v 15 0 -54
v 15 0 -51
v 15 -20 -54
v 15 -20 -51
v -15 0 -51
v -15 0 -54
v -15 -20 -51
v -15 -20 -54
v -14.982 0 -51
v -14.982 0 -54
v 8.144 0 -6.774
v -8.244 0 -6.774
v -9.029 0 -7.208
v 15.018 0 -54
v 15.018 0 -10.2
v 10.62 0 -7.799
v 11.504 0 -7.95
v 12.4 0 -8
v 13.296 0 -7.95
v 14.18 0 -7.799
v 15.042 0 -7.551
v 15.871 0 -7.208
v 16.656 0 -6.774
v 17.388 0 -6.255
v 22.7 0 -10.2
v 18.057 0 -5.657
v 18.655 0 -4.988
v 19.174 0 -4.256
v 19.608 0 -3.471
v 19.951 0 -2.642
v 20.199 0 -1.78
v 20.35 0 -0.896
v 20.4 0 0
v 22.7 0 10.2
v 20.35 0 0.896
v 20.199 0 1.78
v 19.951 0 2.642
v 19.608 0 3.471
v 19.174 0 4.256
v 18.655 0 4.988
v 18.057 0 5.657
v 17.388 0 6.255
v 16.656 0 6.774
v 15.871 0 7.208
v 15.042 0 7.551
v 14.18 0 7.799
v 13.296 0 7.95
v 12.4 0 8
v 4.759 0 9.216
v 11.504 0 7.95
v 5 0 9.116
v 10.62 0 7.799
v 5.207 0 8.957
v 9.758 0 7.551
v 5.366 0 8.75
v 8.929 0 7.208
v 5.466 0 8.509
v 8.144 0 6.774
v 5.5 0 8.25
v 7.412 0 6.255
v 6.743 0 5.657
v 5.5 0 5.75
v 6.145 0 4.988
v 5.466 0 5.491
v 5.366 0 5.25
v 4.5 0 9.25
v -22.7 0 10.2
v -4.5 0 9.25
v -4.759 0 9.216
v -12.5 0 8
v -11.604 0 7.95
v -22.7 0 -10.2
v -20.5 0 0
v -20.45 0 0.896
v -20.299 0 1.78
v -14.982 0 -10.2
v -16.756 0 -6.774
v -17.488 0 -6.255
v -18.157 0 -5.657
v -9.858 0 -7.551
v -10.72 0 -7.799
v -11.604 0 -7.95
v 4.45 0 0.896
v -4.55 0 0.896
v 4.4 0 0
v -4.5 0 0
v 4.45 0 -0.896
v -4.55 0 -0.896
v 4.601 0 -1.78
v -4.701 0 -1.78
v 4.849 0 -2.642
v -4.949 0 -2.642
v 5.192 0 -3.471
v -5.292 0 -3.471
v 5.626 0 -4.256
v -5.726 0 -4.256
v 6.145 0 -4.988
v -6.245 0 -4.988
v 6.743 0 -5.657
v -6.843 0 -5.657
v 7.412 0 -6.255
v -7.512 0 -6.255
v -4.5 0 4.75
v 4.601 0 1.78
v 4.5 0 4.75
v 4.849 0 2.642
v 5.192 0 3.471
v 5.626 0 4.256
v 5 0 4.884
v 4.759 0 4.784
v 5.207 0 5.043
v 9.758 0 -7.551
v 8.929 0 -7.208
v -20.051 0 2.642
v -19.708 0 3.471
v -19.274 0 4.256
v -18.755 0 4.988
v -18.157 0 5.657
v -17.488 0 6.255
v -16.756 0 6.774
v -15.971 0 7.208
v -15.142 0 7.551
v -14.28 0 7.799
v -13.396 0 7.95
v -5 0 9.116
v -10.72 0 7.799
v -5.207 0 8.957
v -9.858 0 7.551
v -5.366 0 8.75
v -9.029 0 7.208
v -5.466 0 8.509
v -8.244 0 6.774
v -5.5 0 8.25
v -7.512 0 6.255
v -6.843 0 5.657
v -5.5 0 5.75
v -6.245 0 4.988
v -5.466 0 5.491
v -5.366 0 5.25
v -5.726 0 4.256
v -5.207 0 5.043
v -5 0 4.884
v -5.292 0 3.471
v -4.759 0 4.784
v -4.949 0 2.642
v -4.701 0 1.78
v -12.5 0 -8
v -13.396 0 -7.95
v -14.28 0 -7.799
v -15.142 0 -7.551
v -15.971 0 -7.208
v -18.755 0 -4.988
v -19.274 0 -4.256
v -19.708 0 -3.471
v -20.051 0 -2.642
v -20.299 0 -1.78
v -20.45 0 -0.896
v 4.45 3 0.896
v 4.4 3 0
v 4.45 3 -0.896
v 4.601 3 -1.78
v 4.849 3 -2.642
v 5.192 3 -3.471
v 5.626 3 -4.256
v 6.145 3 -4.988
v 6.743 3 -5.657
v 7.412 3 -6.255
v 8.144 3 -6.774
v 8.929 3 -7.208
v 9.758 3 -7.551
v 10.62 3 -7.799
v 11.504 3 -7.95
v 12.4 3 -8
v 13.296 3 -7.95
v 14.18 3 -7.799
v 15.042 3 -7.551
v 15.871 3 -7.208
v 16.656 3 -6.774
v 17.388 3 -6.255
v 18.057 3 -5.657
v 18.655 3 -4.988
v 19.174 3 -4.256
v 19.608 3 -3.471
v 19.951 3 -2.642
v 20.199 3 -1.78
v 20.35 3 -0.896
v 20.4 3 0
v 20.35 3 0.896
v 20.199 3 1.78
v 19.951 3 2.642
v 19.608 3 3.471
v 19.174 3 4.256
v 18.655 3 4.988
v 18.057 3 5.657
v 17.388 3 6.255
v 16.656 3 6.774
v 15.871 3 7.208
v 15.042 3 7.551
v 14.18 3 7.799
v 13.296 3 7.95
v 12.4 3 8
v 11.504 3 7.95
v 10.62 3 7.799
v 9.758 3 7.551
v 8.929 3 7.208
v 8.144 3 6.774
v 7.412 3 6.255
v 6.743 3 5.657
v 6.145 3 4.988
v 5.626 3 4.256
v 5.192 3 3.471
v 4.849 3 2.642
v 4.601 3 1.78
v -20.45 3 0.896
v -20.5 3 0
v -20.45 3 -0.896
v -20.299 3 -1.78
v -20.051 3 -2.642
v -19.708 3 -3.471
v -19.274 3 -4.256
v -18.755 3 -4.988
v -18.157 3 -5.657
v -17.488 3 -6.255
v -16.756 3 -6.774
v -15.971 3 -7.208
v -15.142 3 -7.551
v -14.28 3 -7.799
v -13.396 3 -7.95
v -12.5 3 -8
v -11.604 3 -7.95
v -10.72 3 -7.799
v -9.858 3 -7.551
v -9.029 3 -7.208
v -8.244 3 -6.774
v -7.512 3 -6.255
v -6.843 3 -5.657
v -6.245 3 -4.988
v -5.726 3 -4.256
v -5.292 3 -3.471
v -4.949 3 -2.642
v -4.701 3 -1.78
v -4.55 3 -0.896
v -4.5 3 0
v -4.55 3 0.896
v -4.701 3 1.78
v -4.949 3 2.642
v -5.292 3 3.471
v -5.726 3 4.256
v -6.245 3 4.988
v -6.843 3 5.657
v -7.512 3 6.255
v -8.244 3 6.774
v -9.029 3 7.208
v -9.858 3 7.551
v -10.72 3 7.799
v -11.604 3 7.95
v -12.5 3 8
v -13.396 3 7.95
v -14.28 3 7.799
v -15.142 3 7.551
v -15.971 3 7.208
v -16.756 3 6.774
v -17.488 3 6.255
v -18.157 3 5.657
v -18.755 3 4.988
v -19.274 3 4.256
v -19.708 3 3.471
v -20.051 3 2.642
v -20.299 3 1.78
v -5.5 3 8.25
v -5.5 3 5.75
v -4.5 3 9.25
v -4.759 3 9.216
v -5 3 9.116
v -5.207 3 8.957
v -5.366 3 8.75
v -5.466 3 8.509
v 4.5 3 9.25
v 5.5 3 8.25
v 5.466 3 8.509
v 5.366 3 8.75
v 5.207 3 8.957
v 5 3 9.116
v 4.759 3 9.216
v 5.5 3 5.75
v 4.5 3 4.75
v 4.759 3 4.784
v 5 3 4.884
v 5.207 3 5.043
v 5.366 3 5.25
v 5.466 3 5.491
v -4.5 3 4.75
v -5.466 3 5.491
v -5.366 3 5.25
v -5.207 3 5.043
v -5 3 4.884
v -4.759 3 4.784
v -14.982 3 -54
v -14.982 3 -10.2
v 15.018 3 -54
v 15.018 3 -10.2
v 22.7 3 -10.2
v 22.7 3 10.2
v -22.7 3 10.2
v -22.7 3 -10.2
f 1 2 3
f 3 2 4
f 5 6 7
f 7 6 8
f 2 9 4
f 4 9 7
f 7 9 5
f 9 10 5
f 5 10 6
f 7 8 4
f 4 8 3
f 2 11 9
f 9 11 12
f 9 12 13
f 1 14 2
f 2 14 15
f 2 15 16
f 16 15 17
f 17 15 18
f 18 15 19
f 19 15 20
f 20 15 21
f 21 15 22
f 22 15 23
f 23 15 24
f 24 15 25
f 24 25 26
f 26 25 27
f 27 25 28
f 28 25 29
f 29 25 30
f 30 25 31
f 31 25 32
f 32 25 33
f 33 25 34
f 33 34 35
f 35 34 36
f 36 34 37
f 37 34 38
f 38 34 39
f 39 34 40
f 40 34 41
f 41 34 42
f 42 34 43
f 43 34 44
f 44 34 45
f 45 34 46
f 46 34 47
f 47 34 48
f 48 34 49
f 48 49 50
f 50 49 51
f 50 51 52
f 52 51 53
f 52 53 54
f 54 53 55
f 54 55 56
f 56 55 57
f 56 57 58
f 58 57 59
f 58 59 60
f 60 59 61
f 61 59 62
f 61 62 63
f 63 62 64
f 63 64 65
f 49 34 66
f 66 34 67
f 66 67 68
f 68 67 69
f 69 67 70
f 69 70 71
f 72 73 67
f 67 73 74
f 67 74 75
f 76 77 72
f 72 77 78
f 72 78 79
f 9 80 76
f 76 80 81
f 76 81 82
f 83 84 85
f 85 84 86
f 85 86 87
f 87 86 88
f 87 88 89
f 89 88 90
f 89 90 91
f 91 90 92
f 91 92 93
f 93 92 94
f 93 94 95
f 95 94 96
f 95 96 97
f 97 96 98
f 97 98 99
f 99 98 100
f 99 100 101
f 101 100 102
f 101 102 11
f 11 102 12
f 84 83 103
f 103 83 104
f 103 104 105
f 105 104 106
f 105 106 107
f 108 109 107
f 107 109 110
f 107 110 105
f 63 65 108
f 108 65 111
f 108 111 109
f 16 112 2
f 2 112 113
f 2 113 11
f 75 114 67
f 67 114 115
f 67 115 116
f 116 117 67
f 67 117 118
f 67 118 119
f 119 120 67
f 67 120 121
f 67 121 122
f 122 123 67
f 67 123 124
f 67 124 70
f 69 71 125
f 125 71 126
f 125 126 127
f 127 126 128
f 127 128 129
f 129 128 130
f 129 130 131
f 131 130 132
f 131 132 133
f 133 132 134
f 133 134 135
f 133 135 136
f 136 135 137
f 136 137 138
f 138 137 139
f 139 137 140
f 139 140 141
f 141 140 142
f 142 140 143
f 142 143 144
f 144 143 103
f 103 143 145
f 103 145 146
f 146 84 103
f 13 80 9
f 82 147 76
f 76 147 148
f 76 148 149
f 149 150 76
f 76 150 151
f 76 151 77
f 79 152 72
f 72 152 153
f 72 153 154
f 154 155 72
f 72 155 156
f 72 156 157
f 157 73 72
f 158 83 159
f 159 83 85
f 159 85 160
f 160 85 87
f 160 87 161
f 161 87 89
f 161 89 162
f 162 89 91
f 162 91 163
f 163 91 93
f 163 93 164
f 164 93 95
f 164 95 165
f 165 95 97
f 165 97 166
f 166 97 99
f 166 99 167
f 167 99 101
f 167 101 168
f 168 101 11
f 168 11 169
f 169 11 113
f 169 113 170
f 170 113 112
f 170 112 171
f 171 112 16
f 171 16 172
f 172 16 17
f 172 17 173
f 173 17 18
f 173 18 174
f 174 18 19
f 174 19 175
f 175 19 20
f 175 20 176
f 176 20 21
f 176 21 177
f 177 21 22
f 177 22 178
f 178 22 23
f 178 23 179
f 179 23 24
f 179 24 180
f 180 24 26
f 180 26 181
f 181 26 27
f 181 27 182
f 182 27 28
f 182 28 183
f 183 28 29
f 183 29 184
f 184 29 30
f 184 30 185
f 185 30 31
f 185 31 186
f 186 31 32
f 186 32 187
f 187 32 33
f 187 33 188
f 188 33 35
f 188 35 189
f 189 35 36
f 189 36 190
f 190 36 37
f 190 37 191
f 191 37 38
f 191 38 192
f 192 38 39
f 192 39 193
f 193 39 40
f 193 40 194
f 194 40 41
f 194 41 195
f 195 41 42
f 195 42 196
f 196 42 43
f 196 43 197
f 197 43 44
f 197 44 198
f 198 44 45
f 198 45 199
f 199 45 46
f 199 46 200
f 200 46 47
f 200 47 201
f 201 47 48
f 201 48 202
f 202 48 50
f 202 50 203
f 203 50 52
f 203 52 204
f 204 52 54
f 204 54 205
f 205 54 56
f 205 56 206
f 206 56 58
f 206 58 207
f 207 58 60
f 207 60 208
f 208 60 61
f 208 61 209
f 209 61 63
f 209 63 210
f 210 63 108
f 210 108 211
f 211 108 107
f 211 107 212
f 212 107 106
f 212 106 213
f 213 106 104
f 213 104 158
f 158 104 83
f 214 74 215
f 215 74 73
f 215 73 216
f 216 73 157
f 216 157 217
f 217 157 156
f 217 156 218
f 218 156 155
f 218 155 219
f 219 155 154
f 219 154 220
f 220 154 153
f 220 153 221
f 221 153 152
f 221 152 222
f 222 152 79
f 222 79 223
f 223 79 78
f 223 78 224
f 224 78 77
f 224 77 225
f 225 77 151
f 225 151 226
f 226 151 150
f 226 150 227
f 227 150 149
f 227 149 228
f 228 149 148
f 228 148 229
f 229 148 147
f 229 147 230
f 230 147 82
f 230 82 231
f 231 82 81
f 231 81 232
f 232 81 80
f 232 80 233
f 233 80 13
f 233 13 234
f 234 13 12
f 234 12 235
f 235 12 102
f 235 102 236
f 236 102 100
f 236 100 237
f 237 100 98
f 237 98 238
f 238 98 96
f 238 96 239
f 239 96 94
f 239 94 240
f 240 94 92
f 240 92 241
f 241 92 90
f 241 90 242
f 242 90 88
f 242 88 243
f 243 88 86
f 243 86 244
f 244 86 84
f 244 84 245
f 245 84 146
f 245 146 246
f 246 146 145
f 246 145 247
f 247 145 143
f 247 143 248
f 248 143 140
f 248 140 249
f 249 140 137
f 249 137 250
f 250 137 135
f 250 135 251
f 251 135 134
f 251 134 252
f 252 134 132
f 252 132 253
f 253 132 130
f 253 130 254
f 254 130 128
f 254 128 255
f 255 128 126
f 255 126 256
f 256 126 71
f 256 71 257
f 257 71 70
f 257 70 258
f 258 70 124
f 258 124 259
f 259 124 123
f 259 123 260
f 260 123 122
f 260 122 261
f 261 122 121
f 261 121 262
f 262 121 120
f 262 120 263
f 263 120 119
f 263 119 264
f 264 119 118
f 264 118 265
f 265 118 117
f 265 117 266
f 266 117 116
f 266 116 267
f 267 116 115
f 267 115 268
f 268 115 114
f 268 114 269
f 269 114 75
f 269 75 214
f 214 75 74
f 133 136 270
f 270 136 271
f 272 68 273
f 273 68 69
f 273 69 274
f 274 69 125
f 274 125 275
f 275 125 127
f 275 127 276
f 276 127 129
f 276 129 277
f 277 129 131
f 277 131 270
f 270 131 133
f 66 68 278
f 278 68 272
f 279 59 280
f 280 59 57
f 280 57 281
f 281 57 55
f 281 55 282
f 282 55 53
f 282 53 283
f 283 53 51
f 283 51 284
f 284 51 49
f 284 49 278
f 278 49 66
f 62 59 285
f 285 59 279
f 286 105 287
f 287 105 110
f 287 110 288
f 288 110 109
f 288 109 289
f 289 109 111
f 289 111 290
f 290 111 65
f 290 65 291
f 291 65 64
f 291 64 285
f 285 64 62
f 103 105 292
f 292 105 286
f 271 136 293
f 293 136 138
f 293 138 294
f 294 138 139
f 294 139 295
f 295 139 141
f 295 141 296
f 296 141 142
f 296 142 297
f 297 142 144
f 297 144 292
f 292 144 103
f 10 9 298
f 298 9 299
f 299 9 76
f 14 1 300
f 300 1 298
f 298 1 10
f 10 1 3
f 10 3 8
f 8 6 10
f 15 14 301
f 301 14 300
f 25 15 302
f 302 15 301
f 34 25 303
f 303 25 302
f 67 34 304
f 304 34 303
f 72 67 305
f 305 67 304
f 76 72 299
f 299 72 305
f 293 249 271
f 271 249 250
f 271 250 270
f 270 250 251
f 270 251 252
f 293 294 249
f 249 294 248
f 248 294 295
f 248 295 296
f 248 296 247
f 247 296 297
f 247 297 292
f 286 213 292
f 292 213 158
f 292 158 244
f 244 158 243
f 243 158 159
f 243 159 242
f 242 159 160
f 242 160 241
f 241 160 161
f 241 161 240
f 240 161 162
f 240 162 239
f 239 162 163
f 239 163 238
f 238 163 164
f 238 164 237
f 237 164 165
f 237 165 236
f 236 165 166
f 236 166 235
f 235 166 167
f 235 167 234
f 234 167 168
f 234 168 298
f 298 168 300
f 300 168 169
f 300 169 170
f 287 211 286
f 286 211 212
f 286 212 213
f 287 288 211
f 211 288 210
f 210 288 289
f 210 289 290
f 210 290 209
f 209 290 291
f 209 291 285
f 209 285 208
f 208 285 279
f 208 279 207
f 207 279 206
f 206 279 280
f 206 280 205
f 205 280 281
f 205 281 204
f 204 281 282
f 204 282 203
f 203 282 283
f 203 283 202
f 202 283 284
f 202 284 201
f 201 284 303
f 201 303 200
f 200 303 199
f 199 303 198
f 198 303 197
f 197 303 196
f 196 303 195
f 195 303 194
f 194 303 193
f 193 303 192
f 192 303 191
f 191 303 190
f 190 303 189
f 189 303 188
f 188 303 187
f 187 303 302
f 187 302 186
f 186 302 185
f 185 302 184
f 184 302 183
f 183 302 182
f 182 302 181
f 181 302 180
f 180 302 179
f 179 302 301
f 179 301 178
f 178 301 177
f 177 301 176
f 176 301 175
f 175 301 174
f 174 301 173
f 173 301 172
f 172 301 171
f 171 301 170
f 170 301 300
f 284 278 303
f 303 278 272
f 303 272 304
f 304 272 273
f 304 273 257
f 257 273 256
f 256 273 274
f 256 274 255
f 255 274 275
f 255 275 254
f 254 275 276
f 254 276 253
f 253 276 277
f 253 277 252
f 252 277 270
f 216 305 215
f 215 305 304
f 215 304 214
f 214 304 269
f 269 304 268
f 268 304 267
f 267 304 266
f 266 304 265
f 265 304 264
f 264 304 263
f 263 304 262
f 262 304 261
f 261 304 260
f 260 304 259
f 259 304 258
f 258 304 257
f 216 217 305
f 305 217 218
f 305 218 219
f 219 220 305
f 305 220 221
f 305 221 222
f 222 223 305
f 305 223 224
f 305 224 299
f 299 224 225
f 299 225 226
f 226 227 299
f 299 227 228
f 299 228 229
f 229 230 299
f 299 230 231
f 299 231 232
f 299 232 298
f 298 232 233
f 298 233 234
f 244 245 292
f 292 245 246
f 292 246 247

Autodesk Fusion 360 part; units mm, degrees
sketch "Sketch3" plane through (0, 0, 0) normal (0, 1, 0) x (1, 0, 0)
  circle A0 centre (12.4, 0) radius 8
  line L0 (-22.7, 10.2) -> (-22.7, -10.2)
  line L1 (-22.7, -10.2) -> (22.7, -10.2)
  line L2 (22.7, -10.2) -> (22.7, 10.2)
  line L3 (22.7, 10.2) -> (-22.7, -10.2) construction
  line L4 (-22.7, 10.2) -> (22.7, -10.2) construction
  circle A1 centre (-12.5, 0) radius 8
  line L5 (4.5, -4.75) -> (-4.5, -4.75)
  line L6 (-5.5, -5.75) -> (-5.5, -8.25)
  line L7 (-4.5, -9.25) -> (4.5, -9.25)
  line L8 (5.5, -8.25) -> (5.5, -5.75)
  line L9 (5.5, -4.75) -> (-5.5, -9.25) construction
  line L10 (-5.5, -4.75) -> (5.5, -9.25) construction
  arc A2 (-5.5, -8.25) -> (-4.5, -9.25) centre (-4.5, -8.25) ccw
  arc A3 (4.5, -9.25) -> (5.5, -8.25) centre (4.5, -8.25) ccw
  arc A4 (5.5, -5.75) -> (4.5, -4.75) centre (4.5, -5.75) ccw
  arc A5 (-4.5, -4.75) -> (-5.5, -5.75) centre (-4.5, -5.75) ccw
  line L11 (15.0179, 10.2) -> (15.0179, 54)
  line L12 (15.0179, 54) -> (-14.9821, 54)
  line L13 (-14.9821, 54) -> (-14.9821, 10.2)
  line L14 (22.7, 10.2) -> (15.0179, 10.2)
  line L15 (-14.9821, 10.2) -> (-22.7, 10.2)
  point P0 (0, -7)
  dimension "d8" = 16
  dimension "d10" = 45.4
  dimension "d11" = 20.4
  dimension "d12" = 16
  dimension "d13" = 11
  dimension "d14" = 4.5
  dimension "d15" = 1
  dimension "d16" = 1
  dimension "d17" = 30
  dimension "d18" = 43.8
sketch "Sketch4" plane through (0, 0, 0) normal (0, 1, 0) x (1, 0, 0)
  line L0 (-15, 54) -> (15, 54)
  line L1 (15, 54) -> (15, 51)
  line L2 (15, 51) -> (-15, 51)
  line L3 (-15, 51) -> (-15, 54)
extrude "Extrude1" add sketch "Sketch3" along normal blind 3
extrude "Extrude2" add sketch "Sketch4" against normal blind 20
sketch "Sketch1" plane through (0, 0, 0) normal (0, 1, 0) x (1, 0, 0)
sketch "Sketch2" plane through (0, 0, 0) normal (0, 1, 0) x (1, 0, 0)
